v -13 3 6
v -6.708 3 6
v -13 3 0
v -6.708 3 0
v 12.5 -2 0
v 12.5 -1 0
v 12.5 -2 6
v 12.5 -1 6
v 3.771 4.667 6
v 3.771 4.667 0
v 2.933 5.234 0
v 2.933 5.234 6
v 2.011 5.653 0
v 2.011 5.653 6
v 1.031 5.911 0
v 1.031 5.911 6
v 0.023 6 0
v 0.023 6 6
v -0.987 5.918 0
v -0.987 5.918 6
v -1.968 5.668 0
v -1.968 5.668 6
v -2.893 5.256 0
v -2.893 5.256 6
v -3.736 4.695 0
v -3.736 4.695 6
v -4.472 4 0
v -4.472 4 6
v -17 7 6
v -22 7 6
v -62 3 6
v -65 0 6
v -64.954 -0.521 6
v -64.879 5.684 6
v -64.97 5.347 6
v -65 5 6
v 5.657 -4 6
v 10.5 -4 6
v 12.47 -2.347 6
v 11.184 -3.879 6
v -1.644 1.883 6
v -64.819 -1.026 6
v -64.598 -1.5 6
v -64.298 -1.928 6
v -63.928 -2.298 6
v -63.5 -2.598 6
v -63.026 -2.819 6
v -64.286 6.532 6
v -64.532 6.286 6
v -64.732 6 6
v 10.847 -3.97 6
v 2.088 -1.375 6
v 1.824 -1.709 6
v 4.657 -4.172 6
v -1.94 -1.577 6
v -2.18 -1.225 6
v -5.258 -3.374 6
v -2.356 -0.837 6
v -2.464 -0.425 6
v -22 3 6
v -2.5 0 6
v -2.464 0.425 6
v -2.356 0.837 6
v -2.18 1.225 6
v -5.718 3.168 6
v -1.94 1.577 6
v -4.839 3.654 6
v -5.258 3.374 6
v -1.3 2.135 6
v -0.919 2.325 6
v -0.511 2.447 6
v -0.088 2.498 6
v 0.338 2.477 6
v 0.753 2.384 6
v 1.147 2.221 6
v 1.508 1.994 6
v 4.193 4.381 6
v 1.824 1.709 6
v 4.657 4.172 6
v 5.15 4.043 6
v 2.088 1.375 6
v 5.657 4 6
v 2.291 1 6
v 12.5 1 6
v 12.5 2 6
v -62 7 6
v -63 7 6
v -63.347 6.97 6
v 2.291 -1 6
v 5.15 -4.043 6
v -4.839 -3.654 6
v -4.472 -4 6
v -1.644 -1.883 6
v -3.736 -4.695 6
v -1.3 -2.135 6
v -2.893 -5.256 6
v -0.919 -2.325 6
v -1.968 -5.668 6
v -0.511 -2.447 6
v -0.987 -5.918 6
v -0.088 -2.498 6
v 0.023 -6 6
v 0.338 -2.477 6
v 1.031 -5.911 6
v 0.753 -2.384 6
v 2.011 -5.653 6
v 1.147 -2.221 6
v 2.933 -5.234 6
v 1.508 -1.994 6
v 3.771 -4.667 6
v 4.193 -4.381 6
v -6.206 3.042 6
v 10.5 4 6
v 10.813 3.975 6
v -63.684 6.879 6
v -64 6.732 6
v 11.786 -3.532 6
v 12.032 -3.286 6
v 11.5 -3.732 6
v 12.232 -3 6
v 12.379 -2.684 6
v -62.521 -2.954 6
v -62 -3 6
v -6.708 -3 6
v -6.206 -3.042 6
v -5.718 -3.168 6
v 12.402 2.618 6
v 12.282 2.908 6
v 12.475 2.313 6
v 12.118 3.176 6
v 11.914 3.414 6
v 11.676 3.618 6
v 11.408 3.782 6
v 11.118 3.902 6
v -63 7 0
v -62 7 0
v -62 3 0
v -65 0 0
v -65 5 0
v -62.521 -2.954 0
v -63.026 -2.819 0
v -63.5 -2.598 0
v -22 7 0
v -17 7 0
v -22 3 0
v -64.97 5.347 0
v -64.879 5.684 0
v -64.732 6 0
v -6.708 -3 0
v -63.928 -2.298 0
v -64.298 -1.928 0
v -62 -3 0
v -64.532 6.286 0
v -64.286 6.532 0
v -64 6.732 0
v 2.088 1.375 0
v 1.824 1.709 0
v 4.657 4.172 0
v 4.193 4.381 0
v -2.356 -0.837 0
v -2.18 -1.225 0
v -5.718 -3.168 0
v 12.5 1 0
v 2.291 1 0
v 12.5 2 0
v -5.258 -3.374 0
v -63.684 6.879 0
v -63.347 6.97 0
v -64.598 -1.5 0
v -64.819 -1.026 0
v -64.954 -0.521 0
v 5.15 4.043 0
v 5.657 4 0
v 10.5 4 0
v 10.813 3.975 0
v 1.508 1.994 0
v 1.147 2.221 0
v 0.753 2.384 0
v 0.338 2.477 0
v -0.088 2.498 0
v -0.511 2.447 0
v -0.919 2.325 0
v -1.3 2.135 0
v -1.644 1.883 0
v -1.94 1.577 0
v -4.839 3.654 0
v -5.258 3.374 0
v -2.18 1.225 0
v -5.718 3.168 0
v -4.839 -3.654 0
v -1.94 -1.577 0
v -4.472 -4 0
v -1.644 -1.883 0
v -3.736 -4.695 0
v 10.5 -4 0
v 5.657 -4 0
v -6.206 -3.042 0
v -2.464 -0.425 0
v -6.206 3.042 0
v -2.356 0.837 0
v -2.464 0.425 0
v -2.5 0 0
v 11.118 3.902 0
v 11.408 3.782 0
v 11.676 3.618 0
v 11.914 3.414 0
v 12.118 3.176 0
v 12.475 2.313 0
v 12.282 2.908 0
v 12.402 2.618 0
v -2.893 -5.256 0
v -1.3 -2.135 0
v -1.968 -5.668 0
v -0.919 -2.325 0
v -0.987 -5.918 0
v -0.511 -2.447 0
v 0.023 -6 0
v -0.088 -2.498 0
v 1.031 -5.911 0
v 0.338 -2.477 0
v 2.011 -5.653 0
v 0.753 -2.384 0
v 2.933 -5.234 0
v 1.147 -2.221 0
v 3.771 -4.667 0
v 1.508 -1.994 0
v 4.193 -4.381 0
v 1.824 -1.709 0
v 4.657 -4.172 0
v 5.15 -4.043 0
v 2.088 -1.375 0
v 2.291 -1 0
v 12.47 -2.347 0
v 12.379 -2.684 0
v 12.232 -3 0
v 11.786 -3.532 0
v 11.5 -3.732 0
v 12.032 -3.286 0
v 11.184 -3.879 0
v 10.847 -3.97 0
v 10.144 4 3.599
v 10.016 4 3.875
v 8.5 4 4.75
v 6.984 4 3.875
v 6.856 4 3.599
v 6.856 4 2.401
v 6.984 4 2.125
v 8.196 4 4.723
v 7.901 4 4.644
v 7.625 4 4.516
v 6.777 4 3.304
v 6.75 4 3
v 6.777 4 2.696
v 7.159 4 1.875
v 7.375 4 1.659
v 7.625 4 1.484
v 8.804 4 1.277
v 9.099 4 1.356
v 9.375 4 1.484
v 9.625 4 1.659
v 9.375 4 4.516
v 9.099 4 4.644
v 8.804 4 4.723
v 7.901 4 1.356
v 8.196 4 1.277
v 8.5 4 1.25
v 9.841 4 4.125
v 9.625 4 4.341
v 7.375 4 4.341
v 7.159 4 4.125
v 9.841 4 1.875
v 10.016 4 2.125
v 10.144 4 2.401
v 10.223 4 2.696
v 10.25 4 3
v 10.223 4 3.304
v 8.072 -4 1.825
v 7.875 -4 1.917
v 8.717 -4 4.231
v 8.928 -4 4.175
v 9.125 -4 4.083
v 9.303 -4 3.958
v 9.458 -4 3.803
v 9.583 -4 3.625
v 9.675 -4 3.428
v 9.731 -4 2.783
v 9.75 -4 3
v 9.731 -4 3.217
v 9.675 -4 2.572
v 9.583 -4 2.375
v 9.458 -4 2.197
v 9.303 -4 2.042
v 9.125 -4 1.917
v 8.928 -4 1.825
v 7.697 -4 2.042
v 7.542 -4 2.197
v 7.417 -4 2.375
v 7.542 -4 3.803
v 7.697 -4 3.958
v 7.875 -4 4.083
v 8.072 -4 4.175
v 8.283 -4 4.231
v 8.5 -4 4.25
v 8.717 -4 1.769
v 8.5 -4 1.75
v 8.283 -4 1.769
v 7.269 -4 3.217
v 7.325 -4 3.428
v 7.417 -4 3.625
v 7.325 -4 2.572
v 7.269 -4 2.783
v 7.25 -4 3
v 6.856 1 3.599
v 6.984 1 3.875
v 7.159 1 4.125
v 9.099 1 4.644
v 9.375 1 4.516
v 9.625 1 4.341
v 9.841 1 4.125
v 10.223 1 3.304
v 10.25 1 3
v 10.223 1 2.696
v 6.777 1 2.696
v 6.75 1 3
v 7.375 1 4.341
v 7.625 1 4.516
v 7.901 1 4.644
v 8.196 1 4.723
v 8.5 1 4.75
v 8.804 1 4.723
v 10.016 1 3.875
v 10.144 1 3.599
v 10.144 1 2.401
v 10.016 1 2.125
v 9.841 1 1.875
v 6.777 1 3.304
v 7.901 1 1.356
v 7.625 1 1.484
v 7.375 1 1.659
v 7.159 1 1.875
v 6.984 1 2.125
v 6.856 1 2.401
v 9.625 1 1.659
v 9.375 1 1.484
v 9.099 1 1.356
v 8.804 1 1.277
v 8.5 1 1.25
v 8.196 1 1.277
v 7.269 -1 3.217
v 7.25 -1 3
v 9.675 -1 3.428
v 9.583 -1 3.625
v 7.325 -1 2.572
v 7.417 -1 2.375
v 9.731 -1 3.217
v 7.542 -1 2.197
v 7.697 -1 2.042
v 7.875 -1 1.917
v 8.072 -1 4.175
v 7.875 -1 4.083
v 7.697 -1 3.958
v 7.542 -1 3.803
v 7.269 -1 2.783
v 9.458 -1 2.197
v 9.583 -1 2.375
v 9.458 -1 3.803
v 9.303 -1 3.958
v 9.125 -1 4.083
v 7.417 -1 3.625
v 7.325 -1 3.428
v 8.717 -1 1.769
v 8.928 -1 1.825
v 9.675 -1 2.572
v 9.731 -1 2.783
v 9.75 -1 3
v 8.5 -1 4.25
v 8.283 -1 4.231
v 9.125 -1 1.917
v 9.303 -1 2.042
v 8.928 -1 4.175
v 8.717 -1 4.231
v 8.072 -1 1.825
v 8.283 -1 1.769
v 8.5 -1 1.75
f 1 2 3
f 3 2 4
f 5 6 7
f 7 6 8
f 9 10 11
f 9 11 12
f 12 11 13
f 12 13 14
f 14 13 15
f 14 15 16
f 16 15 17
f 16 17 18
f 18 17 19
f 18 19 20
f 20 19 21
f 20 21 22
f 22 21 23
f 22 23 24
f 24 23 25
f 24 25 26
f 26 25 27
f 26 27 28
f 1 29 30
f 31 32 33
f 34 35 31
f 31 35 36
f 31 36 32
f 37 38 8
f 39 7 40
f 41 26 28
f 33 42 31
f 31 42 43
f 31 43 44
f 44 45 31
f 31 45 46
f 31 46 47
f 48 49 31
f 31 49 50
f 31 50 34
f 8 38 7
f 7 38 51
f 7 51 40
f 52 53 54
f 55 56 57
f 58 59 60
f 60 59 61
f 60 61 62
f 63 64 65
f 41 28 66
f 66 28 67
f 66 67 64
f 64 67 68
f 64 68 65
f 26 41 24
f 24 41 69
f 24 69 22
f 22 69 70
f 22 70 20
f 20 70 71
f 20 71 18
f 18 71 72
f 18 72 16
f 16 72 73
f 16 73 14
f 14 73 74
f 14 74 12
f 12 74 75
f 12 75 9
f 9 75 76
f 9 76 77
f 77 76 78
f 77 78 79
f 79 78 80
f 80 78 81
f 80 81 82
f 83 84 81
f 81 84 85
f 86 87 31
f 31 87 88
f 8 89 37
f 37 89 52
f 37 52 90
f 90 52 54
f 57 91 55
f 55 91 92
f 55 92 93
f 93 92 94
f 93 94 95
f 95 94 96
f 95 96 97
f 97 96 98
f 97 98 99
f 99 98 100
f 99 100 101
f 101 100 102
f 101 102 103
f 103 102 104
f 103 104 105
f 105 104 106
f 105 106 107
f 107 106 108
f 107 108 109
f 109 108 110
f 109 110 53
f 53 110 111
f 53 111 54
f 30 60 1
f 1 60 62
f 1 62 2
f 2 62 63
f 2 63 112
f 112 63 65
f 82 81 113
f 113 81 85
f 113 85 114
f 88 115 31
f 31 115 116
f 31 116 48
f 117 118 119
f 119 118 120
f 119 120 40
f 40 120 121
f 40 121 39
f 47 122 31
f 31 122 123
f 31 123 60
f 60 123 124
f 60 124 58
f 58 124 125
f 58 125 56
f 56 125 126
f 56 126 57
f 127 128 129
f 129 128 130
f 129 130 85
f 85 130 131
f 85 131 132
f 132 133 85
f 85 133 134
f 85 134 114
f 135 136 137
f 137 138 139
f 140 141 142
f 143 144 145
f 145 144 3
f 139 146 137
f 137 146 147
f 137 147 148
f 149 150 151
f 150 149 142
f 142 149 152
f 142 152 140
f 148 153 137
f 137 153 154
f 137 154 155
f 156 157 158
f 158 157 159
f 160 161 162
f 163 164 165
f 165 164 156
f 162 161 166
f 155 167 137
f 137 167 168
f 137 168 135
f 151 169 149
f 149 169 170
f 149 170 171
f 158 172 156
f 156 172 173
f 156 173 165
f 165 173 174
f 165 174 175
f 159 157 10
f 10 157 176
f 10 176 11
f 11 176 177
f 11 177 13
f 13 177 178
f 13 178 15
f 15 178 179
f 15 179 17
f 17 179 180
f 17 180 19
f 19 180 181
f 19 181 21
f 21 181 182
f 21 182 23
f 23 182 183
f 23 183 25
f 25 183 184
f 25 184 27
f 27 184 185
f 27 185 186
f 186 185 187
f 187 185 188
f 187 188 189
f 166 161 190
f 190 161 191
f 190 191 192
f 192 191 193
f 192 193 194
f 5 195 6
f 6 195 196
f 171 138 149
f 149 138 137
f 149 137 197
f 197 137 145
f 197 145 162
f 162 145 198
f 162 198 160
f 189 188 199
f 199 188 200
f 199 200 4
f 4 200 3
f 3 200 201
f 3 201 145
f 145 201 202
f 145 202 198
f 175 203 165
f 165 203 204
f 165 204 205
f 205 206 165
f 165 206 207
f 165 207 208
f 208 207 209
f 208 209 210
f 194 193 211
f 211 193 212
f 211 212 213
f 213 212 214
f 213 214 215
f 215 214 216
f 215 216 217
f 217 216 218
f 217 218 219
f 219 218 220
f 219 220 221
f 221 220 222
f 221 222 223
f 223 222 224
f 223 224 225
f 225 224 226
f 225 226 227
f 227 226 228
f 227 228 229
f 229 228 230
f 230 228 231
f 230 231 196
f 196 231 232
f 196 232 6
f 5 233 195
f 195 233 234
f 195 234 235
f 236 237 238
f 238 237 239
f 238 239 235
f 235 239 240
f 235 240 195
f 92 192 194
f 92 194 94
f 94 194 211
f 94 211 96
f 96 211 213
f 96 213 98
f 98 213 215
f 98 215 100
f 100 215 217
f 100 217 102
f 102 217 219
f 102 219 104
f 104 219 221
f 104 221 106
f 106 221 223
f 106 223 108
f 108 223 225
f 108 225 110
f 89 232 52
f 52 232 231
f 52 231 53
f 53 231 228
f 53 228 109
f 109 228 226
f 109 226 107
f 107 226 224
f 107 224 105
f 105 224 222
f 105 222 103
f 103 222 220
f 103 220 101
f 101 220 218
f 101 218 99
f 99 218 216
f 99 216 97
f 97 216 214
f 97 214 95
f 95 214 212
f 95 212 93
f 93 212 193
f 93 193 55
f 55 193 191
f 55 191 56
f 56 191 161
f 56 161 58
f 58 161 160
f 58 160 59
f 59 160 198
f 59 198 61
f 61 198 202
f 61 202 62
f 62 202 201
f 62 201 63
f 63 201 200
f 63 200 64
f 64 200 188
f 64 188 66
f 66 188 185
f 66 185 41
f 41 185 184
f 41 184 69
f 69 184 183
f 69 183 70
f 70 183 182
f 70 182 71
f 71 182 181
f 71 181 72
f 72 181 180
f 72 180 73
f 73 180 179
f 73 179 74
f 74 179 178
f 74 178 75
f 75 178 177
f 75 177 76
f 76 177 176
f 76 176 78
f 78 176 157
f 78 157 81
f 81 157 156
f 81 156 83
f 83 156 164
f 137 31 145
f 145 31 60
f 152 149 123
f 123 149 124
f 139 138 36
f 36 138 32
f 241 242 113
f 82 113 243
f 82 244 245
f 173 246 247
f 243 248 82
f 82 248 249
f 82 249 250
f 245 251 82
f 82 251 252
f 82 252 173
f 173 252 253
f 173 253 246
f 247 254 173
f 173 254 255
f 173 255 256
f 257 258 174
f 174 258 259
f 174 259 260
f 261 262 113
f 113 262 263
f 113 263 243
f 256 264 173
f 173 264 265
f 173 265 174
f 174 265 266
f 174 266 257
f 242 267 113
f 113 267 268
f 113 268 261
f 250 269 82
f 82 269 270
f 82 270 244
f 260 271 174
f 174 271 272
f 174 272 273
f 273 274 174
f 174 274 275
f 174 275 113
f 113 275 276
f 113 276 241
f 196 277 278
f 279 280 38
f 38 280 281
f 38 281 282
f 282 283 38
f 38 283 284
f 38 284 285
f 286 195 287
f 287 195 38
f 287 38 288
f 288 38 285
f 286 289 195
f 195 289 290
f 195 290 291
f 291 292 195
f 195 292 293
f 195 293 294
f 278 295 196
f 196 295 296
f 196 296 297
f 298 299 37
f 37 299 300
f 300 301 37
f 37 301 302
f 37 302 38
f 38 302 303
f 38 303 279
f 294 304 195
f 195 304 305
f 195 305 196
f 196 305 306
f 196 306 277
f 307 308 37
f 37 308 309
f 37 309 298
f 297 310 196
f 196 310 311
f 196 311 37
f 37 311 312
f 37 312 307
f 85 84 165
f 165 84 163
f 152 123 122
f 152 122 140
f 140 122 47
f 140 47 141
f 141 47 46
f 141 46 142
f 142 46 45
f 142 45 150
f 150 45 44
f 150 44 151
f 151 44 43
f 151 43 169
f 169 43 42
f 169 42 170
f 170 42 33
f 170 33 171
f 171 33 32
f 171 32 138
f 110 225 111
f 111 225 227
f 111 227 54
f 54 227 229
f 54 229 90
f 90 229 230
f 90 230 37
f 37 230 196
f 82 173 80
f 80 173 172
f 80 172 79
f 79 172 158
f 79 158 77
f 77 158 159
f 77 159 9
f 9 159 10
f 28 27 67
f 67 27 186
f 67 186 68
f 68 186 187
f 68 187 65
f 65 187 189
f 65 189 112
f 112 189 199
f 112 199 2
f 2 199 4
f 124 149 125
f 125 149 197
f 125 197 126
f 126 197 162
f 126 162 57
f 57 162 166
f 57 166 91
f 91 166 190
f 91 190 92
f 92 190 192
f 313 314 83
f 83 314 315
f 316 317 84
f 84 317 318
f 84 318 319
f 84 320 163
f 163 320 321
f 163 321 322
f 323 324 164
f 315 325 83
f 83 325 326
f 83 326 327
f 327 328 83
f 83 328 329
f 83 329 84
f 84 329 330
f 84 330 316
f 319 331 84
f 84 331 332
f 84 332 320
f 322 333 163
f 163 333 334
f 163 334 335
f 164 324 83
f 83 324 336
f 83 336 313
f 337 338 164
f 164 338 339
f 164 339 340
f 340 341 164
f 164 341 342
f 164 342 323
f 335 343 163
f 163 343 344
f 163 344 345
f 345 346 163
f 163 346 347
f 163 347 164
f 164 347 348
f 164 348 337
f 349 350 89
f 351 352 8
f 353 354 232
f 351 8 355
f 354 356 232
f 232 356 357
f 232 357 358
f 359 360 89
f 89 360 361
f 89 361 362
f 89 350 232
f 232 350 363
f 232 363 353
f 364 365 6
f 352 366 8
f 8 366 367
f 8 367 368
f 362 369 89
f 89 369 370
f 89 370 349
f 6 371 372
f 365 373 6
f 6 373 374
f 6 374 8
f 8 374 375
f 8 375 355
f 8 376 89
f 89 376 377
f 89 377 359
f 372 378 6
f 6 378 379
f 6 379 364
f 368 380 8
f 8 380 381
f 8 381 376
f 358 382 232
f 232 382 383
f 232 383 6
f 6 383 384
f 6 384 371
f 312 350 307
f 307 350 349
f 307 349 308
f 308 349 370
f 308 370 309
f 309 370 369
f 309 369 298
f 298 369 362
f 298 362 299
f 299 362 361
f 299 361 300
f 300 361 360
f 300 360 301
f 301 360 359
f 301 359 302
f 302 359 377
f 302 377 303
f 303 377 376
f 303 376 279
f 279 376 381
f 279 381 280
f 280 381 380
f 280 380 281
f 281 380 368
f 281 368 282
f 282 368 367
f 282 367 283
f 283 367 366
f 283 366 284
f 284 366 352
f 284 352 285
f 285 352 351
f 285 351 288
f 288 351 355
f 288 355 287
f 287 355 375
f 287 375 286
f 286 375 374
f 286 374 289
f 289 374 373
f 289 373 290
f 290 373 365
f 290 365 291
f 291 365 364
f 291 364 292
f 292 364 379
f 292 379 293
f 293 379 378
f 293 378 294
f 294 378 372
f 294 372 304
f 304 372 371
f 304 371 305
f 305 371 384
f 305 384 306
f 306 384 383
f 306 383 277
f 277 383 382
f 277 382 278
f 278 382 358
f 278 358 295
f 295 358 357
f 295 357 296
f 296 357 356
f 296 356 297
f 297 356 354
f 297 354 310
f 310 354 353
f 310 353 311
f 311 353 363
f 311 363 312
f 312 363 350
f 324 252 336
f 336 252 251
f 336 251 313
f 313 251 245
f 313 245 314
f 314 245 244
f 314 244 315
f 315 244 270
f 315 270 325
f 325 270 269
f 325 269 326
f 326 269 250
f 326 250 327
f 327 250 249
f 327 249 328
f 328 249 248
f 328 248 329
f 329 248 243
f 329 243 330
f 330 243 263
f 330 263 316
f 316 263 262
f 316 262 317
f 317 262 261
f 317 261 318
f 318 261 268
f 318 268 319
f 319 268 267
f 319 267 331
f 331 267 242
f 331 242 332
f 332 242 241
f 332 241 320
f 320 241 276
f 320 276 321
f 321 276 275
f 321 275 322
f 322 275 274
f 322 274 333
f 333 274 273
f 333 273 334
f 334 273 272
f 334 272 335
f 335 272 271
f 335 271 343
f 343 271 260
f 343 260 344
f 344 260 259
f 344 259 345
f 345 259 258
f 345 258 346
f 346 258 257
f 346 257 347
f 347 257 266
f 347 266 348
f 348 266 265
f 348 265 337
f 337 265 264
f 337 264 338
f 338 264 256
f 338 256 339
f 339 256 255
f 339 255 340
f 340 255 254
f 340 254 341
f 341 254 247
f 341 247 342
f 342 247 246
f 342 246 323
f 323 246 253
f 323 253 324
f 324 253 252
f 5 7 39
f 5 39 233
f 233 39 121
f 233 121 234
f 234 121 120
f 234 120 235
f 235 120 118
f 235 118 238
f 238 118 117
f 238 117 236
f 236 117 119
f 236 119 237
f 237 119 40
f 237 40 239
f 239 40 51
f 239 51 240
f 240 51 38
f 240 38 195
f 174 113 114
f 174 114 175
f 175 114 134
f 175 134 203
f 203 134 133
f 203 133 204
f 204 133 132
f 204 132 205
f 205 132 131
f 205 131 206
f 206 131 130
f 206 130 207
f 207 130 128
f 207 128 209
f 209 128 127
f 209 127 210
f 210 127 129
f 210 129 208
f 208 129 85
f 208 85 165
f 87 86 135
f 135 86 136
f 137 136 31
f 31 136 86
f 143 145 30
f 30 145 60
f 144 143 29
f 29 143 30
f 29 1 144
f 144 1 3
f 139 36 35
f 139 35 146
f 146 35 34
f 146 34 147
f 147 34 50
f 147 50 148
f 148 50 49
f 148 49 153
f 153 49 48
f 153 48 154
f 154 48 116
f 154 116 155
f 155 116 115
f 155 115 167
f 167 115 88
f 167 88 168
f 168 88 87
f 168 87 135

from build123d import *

# Parameters (mm, degrees)
ESQUISSE1_R                  = 6
ESQUISSE1_R_2                = 2.5
BOSS_EXTRU_1_DEPTH           = 6
ESQUISSE2_W                  = 62
ESQUISSE2_H                  = 6
BOSS_EXTRU_2_DEPTH           = 6
ESQUISSE3_W                  = 10
ESQUISSE3_H                  = 8
BOSS_EXTRU_3_DEPTH           = 6
CONG_1_R                     = 3
ENL_V_MAT_EXTRU_1_DEPTH      = 66.551506466
ENL_V_MAT_EXTRU_1_DEPTH_BACK = 66.551506466
ESQUISSE4_W                  = 12
ESQUISSE4_H                  = 2
ENL_V_MAT_EXTRU_2_DEPTH      = 67.037867924
ENL_V_MAT_EXTRU_2_DEPTH_BACK = 67.037867924
ESQUISSE5_R                  = 1.25
ESQUISSE6_R                  = 1.75
ENL_V_MAT_EXTRU_3_DEPTH      = 3
CONG_2_R                     = 2
ESQUISSE7_W                  = 3
ESQUISSE7_H                  = 4
BOSS_EXTRU_4_DEPTH           = 6
CHANFREIN1_SIZE              = 6
CONG_3_R                     = 2


with BuildPart() as part:
    # Esquisse1 → Boss.-Extru.1 (new body)
    with BuildSketch(Plane.XY):
        Circle(ESQUISSE1_R)
        Circle(ESQUISSE1_R_2, mode=Mode.SUBTRACT)
    extrude(amount=BOSS_EXTRU_1_DEPTH)

    # Esquisse2 → Boss.-Extru.2 (add)
    with BuildSketch(Plane.XY.offset(6)):
        with Locations((-34, 0)):
            Rectangle(ESQUISSE2_W, ESQUISSE2_H)
    extrude(amount=-BOSS_EXTRU_2_DEPTH)

    # Esquisse3 → Boss.-Extru.3 (add)
    with BuildSketch(Plane.XY.offset(6)):
        with Locations((7.5, 0)):
            Rectangle(ESQUISSE3_W, ESQUISSE3_H)
    extrude(amount=-BOSS_EXTRU_3_DEPTH)

    # Congé1
    cong_1_edges = [part.edges().sort_by_distance(p)[0] for p in [
        (-5.196152423, -3, 3),
        (-5.196152423, 3, 3),
        (-65, -3, 3),
        (4.472135955, -4, 3),
        (4.472135955, 4, 3),
    ]]
    fillet(cong_1_edges, radius=CONG_1_R)

    # Esquisse4 → Enlèv. mat.-Extru.1 (cut, two sides: drawn at the far end of the back side and taken through both)
    with BuildSketch(Plane.XY.offset(6).offset(-ENL_V_MAT_EXTRU_1_DEPTH_BACK)):
        with Locations((6.5, 0)):
            Rectangle(ESQUISSE4_W, ESQUISSE4_H)
    extrude(amount=ENL_V_MAT_EXTRU_1_DEPTH + ENL_V_MAT_EXTRU_1_DEPTH_BACK, mode=Mode.SUBTRACT)

    # Esquisse5 → Enlèv. mat.-Extru.2 (cut, two sides: drawn at the far end of the back side and taken through both)
    with BuildSketch(Plane(origin=(0, 4, 0), x_dir=(1, 0, 0), z_dir=(0, 1, 0)).offset(-ENL_V_MAT_EXTRU_2_DEPTH_BACK)):
        with Locations(Location((8.5, -3, 0), (0, 0, 90))):
            Circle(ESQUISSE5_R)
    extrude(amount=ENL_V_MAT_EXTRU_2_DEPTH + ENL_V_MAT_EXTRU_2_DEPTH_BACK, mode=Mode.SUBTRACT)

    # Esquisse6 → Enlèv. mat.-Extru.3 (cut)
    with BuildSketch(Plane(origin=(0, 4, 0), x_dir=(1, 0, 0), z_dir=(0, 1, 0))):
        with Locations(Location((8.5, -3, 0), (0, 0, 180))):
            Circle(ESQUISSE6_R)
    extrude(amount=-ENL_V_MAT_EXTRU_3_DEPTH, mode=Mode.SUBTRACT)

    # Congé2
    cong_2_edges = [part.edges().sort_by_distance(p)[0] for p in [
        (12.5, -4, 3),
        (12.5, 4, 3),
    ]]
    fillet(cong_2_edges, radius=CONG_2_R)

    # Esquisse7 → Boss.-Extru.4 (add)
    with BuildSketch(Plane.XY.offset(6)):
        with Locations((-63.5, 5)):
            Rectangle(ESQUISSE7_W, ESQUISSE7_H)
        with Locations((-20.5, 5)):
            Rectangle(ESQUISSE7_W, ESQUISSE7_H)
    extrude(amount=-BOSS_EXTRU_4_DEPTH)

    # Chanfrein1
    # the kernel refuses this chamfer: 6 mm, written as the material it adds along each edge
    with BuildSketch(Plane(origin=(-19, 3, 6), x_dir=(-0.027495876610586202, 0.9996219169112968, 0), z_dir=(0, 0, -1))) as chanfrein1_piece_1_section:
        Polygon((CHANFREIN1_SIZE * 0.999621916911, CHANFREIN1_SIZE * 0.0274958766106), (-CHANFREIN1_SIZE * 0.0274958766106, CHANFREIN1_SIZE * 0.999621916911), (0, 0), align=None)
    chanfrein1_piece_1 = extrude(amount=6, mode=Mode.PRIVATE)
    chanfrein1_piece_1 = split(chanfrein1_piece_1, bisect_by=Plane(origin=(-16.81581799, 7, 3), z_dir=(0, -1, 0)), keep=Keep.TOP, mode=Mode.PRIVATE)
    add(chanfrein1_piece_1)

    # Congé3
    cong_3_edges = [part.edges().sort_by_distance(p)[0] for p in [
        (-65, 7, 3),
    ]]
    fillet(cong_3_edges, radius=CONG_3_R)


solid = part.part
